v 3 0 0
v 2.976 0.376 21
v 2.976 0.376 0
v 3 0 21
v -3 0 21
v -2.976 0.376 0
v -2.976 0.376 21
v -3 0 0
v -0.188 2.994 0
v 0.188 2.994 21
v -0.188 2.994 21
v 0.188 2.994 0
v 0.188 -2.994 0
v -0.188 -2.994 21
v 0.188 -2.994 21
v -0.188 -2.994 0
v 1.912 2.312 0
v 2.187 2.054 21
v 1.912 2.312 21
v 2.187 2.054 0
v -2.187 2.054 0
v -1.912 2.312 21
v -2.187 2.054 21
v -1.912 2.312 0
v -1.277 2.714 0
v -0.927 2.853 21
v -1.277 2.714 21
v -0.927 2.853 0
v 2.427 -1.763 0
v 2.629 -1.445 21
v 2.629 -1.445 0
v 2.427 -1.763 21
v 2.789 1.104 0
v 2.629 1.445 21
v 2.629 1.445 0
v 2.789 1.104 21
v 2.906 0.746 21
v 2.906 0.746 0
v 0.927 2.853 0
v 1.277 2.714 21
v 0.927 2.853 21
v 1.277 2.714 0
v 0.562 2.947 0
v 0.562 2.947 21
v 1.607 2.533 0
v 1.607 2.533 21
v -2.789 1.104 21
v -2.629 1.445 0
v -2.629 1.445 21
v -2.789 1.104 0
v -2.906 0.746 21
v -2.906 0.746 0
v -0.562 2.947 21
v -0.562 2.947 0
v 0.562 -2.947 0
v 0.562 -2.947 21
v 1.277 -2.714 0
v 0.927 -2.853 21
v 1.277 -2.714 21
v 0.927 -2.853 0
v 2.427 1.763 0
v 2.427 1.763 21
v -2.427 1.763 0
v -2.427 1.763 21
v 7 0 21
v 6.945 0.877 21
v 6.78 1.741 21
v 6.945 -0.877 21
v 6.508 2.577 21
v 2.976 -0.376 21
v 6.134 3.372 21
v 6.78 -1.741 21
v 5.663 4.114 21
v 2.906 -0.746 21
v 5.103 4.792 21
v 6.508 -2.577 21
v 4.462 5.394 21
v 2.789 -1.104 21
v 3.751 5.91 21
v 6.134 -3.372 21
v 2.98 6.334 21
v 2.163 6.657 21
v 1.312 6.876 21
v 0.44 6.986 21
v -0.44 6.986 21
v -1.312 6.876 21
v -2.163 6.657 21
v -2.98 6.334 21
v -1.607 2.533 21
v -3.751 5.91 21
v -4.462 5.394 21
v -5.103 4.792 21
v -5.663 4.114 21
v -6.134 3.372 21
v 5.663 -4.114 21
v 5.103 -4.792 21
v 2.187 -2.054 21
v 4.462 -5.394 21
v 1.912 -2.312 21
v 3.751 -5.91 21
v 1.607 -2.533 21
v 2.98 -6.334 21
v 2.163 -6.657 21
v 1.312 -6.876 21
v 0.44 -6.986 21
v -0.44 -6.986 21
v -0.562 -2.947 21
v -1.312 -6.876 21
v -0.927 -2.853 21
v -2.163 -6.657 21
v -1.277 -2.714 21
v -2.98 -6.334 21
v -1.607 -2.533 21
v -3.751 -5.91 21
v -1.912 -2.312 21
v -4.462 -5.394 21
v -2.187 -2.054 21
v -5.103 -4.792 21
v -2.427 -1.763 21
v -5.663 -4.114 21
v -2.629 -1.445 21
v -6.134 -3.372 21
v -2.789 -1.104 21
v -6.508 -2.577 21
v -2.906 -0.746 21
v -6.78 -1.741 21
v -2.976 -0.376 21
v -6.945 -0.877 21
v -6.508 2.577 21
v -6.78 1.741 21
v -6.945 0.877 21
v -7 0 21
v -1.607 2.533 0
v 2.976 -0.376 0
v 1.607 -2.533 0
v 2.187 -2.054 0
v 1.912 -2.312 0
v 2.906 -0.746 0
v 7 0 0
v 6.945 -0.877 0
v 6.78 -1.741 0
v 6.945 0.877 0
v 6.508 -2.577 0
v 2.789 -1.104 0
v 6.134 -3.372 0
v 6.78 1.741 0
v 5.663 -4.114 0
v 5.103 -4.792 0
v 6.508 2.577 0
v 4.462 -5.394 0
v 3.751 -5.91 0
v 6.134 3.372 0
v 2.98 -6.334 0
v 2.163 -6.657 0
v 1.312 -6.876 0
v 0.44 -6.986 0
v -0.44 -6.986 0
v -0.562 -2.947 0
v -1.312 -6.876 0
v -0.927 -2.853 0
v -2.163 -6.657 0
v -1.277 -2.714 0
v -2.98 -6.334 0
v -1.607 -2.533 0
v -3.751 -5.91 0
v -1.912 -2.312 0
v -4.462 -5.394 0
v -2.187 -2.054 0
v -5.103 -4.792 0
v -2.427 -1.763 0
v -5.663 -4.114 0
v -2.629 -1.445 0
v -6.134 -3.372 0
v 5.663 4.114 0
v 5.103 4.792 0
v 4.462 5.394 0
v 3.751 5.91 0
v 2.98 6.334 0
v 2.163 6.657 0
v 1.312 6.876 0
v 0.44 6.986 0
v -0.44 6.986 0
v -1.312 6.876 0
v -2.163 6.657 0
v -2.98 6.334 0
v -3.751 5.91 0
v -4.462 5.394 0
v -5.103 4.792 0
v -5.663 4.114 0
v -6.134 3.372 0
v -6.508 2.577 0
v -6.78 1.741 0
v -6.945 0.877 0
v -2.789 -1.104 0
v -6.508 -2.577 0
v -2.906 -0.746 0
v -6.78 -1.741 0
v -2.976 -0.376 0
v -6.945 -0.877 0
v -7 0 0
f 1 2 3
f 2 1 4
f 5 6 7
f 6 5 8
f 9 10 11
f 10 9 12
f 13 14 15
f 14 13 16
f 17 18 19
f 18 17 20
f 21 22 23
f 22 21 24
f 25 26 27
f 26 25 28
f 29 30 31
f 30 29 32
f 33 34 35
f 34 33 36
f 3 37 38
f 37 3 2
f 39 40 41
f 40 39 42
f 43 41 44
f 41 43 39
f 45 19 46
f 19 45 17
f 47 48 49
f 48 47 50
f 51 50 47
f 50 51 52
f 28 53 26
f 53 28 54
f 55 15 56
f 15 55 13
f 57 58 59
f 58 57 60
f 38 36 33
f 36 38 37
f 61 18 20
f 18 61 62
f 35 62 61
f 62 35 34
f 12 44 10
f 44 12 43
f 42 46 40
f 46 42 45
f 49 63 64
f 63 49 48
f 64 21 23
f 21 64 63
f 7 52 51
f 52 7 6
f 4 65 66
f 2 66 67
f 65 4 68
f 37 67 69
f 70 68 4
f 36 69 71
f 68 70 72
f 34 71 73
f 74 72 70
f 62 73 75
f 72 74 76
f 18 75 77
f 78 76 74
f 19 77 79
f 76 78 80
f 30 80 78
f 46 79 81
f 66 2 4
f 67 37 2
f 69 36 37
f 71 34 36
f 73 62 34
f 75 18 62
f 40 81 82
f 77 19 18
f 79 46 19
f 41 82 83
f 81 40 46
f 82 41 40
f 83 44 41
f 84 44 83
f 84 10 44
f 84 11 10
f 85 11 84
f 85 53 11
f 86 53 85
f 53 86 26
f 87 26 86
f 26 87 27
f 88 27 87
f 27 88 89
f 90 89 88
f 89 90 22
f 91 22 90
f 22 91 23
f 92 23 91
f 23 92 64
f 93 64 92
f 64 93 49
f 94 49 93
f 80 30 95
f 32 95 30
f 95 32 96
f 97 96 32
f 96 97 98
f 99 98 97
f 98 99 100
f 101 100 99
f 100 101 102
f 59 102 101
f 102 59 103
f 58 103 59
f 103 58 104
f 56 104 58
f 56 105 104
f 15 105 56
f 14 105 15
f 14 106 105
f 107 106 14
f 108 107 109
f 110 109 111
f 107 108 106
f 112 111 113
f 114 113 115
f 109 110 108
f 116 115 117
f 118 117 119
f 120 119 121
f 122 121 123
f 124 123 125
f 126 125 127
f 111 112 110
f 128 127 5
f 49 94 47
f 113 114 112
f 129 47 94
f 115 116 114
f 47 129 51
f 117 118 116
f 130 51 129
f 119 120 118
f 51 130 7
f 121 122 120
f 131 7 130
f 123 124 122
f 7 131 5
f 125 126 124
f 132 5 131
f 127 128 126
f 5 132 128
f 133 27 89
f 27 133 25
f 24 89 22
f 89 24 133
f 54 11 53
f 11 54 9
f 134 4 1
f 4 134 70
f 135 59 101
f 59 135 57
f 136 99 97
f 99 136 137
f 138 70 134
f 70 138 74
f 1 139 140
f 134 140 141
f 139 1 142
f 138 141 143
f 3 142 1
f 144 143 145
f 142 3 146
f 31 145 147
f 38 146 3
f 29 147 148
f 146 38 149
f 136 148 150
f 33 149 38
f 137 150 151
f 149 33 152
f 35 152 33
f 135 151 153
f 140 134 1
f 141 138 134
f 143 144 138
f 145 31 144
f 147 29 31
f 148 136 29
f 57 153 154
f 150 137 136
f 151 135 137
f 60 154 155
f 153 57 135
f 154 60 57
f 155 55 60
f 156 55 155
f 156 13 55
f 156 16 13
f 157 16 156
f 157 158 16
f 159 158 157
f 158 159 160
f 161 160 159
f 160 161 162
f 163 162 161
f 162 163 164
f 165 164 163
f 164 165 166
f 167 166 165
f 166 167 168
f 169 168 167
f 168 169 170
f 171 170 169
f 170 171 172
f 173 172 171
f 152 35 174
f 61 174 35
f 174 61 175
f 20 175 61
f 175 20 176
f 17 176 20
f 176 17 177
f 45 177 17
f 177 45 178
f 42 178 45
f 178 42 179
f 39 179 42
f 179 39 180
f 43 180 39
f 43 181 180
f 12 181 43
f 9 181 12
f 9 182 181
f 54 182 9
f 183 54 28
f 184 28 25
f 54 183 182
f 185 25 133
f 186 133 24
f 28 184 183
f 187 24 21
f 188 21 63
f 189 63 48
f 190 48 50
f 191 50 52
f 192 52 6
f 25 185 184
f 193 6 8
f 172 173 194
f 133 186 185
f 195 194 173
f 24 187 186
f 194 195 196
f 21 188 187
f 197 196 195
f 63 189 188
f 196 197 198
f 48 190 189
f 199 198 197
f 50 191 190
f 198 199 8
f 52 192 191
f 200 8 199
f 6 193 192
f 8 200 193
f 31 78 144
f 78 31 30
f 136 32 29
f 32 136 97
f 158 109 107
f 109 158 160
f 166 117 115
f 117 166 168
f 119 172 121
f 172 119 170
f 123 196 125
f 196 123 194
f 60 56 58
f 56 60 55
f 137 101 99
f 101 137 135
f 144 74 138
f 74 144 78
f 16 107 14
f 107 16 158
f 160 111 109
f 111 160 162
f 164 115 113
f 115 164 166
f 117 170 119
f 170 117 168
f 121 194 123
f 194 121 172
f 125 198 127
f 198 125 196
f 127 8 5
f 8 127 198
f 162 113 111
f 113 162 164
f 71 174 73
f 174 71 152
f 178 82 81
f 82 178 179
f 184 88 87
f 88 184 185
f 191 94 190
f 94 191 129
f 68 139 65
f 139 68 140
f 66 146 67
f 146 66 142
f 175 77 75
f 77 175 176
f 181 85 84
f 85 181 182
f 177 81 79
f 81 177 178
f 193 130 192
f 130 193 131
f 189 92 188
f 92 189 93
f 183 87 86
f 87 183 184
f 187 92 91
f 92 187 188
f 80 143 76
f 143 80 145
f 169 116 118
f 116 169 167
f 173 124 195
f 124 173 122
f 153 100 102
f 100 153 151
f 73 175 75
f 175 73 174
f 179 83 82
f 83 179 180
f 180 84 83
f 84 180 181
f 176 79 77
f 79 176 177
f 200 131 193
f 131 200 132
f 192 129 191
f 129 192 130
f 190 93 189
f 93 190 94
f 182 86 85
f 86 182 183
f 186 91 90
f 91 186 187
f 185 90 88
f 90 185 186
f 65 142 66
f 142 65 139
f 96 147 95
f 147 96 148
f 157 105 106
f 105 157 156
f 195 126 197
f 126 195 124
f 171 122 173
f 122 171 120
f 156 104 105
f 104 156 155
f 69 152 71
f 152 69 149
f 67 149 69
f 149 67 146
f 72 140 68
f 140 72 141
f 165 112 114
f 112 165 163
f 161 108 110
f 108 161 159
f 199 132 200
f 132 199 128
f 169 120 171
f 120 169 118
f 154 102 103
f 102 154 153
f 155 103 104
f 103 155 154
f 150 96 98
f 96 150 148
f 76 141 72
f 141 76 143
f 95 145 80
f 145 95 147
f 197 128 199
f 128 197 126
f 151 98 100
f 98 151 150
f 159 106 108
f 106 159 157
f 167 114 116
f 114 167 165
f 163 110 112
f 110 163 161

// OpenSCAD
$fn = 50;


difference() {
	union() {
		cylinder(h = 21, r = 7.0000000000);
	}
	union() {
		cylinder(h = 21, r = 3.0000000000);
		cylinder(h = 21, r = 3.0000000000);
		cylinder(h = 21, r = 1.5000000000);
		cylinder(h = 21, r = 1.5000000000);
		cylinder(h = 21, r = 1.5000000000);
		cylinder(h = 21, r = 1.5000000000);
		cylinder(h = 21, r = 1.5000000000);
		cylinder(h = 21, r = 1.5000000000);
	}
}
